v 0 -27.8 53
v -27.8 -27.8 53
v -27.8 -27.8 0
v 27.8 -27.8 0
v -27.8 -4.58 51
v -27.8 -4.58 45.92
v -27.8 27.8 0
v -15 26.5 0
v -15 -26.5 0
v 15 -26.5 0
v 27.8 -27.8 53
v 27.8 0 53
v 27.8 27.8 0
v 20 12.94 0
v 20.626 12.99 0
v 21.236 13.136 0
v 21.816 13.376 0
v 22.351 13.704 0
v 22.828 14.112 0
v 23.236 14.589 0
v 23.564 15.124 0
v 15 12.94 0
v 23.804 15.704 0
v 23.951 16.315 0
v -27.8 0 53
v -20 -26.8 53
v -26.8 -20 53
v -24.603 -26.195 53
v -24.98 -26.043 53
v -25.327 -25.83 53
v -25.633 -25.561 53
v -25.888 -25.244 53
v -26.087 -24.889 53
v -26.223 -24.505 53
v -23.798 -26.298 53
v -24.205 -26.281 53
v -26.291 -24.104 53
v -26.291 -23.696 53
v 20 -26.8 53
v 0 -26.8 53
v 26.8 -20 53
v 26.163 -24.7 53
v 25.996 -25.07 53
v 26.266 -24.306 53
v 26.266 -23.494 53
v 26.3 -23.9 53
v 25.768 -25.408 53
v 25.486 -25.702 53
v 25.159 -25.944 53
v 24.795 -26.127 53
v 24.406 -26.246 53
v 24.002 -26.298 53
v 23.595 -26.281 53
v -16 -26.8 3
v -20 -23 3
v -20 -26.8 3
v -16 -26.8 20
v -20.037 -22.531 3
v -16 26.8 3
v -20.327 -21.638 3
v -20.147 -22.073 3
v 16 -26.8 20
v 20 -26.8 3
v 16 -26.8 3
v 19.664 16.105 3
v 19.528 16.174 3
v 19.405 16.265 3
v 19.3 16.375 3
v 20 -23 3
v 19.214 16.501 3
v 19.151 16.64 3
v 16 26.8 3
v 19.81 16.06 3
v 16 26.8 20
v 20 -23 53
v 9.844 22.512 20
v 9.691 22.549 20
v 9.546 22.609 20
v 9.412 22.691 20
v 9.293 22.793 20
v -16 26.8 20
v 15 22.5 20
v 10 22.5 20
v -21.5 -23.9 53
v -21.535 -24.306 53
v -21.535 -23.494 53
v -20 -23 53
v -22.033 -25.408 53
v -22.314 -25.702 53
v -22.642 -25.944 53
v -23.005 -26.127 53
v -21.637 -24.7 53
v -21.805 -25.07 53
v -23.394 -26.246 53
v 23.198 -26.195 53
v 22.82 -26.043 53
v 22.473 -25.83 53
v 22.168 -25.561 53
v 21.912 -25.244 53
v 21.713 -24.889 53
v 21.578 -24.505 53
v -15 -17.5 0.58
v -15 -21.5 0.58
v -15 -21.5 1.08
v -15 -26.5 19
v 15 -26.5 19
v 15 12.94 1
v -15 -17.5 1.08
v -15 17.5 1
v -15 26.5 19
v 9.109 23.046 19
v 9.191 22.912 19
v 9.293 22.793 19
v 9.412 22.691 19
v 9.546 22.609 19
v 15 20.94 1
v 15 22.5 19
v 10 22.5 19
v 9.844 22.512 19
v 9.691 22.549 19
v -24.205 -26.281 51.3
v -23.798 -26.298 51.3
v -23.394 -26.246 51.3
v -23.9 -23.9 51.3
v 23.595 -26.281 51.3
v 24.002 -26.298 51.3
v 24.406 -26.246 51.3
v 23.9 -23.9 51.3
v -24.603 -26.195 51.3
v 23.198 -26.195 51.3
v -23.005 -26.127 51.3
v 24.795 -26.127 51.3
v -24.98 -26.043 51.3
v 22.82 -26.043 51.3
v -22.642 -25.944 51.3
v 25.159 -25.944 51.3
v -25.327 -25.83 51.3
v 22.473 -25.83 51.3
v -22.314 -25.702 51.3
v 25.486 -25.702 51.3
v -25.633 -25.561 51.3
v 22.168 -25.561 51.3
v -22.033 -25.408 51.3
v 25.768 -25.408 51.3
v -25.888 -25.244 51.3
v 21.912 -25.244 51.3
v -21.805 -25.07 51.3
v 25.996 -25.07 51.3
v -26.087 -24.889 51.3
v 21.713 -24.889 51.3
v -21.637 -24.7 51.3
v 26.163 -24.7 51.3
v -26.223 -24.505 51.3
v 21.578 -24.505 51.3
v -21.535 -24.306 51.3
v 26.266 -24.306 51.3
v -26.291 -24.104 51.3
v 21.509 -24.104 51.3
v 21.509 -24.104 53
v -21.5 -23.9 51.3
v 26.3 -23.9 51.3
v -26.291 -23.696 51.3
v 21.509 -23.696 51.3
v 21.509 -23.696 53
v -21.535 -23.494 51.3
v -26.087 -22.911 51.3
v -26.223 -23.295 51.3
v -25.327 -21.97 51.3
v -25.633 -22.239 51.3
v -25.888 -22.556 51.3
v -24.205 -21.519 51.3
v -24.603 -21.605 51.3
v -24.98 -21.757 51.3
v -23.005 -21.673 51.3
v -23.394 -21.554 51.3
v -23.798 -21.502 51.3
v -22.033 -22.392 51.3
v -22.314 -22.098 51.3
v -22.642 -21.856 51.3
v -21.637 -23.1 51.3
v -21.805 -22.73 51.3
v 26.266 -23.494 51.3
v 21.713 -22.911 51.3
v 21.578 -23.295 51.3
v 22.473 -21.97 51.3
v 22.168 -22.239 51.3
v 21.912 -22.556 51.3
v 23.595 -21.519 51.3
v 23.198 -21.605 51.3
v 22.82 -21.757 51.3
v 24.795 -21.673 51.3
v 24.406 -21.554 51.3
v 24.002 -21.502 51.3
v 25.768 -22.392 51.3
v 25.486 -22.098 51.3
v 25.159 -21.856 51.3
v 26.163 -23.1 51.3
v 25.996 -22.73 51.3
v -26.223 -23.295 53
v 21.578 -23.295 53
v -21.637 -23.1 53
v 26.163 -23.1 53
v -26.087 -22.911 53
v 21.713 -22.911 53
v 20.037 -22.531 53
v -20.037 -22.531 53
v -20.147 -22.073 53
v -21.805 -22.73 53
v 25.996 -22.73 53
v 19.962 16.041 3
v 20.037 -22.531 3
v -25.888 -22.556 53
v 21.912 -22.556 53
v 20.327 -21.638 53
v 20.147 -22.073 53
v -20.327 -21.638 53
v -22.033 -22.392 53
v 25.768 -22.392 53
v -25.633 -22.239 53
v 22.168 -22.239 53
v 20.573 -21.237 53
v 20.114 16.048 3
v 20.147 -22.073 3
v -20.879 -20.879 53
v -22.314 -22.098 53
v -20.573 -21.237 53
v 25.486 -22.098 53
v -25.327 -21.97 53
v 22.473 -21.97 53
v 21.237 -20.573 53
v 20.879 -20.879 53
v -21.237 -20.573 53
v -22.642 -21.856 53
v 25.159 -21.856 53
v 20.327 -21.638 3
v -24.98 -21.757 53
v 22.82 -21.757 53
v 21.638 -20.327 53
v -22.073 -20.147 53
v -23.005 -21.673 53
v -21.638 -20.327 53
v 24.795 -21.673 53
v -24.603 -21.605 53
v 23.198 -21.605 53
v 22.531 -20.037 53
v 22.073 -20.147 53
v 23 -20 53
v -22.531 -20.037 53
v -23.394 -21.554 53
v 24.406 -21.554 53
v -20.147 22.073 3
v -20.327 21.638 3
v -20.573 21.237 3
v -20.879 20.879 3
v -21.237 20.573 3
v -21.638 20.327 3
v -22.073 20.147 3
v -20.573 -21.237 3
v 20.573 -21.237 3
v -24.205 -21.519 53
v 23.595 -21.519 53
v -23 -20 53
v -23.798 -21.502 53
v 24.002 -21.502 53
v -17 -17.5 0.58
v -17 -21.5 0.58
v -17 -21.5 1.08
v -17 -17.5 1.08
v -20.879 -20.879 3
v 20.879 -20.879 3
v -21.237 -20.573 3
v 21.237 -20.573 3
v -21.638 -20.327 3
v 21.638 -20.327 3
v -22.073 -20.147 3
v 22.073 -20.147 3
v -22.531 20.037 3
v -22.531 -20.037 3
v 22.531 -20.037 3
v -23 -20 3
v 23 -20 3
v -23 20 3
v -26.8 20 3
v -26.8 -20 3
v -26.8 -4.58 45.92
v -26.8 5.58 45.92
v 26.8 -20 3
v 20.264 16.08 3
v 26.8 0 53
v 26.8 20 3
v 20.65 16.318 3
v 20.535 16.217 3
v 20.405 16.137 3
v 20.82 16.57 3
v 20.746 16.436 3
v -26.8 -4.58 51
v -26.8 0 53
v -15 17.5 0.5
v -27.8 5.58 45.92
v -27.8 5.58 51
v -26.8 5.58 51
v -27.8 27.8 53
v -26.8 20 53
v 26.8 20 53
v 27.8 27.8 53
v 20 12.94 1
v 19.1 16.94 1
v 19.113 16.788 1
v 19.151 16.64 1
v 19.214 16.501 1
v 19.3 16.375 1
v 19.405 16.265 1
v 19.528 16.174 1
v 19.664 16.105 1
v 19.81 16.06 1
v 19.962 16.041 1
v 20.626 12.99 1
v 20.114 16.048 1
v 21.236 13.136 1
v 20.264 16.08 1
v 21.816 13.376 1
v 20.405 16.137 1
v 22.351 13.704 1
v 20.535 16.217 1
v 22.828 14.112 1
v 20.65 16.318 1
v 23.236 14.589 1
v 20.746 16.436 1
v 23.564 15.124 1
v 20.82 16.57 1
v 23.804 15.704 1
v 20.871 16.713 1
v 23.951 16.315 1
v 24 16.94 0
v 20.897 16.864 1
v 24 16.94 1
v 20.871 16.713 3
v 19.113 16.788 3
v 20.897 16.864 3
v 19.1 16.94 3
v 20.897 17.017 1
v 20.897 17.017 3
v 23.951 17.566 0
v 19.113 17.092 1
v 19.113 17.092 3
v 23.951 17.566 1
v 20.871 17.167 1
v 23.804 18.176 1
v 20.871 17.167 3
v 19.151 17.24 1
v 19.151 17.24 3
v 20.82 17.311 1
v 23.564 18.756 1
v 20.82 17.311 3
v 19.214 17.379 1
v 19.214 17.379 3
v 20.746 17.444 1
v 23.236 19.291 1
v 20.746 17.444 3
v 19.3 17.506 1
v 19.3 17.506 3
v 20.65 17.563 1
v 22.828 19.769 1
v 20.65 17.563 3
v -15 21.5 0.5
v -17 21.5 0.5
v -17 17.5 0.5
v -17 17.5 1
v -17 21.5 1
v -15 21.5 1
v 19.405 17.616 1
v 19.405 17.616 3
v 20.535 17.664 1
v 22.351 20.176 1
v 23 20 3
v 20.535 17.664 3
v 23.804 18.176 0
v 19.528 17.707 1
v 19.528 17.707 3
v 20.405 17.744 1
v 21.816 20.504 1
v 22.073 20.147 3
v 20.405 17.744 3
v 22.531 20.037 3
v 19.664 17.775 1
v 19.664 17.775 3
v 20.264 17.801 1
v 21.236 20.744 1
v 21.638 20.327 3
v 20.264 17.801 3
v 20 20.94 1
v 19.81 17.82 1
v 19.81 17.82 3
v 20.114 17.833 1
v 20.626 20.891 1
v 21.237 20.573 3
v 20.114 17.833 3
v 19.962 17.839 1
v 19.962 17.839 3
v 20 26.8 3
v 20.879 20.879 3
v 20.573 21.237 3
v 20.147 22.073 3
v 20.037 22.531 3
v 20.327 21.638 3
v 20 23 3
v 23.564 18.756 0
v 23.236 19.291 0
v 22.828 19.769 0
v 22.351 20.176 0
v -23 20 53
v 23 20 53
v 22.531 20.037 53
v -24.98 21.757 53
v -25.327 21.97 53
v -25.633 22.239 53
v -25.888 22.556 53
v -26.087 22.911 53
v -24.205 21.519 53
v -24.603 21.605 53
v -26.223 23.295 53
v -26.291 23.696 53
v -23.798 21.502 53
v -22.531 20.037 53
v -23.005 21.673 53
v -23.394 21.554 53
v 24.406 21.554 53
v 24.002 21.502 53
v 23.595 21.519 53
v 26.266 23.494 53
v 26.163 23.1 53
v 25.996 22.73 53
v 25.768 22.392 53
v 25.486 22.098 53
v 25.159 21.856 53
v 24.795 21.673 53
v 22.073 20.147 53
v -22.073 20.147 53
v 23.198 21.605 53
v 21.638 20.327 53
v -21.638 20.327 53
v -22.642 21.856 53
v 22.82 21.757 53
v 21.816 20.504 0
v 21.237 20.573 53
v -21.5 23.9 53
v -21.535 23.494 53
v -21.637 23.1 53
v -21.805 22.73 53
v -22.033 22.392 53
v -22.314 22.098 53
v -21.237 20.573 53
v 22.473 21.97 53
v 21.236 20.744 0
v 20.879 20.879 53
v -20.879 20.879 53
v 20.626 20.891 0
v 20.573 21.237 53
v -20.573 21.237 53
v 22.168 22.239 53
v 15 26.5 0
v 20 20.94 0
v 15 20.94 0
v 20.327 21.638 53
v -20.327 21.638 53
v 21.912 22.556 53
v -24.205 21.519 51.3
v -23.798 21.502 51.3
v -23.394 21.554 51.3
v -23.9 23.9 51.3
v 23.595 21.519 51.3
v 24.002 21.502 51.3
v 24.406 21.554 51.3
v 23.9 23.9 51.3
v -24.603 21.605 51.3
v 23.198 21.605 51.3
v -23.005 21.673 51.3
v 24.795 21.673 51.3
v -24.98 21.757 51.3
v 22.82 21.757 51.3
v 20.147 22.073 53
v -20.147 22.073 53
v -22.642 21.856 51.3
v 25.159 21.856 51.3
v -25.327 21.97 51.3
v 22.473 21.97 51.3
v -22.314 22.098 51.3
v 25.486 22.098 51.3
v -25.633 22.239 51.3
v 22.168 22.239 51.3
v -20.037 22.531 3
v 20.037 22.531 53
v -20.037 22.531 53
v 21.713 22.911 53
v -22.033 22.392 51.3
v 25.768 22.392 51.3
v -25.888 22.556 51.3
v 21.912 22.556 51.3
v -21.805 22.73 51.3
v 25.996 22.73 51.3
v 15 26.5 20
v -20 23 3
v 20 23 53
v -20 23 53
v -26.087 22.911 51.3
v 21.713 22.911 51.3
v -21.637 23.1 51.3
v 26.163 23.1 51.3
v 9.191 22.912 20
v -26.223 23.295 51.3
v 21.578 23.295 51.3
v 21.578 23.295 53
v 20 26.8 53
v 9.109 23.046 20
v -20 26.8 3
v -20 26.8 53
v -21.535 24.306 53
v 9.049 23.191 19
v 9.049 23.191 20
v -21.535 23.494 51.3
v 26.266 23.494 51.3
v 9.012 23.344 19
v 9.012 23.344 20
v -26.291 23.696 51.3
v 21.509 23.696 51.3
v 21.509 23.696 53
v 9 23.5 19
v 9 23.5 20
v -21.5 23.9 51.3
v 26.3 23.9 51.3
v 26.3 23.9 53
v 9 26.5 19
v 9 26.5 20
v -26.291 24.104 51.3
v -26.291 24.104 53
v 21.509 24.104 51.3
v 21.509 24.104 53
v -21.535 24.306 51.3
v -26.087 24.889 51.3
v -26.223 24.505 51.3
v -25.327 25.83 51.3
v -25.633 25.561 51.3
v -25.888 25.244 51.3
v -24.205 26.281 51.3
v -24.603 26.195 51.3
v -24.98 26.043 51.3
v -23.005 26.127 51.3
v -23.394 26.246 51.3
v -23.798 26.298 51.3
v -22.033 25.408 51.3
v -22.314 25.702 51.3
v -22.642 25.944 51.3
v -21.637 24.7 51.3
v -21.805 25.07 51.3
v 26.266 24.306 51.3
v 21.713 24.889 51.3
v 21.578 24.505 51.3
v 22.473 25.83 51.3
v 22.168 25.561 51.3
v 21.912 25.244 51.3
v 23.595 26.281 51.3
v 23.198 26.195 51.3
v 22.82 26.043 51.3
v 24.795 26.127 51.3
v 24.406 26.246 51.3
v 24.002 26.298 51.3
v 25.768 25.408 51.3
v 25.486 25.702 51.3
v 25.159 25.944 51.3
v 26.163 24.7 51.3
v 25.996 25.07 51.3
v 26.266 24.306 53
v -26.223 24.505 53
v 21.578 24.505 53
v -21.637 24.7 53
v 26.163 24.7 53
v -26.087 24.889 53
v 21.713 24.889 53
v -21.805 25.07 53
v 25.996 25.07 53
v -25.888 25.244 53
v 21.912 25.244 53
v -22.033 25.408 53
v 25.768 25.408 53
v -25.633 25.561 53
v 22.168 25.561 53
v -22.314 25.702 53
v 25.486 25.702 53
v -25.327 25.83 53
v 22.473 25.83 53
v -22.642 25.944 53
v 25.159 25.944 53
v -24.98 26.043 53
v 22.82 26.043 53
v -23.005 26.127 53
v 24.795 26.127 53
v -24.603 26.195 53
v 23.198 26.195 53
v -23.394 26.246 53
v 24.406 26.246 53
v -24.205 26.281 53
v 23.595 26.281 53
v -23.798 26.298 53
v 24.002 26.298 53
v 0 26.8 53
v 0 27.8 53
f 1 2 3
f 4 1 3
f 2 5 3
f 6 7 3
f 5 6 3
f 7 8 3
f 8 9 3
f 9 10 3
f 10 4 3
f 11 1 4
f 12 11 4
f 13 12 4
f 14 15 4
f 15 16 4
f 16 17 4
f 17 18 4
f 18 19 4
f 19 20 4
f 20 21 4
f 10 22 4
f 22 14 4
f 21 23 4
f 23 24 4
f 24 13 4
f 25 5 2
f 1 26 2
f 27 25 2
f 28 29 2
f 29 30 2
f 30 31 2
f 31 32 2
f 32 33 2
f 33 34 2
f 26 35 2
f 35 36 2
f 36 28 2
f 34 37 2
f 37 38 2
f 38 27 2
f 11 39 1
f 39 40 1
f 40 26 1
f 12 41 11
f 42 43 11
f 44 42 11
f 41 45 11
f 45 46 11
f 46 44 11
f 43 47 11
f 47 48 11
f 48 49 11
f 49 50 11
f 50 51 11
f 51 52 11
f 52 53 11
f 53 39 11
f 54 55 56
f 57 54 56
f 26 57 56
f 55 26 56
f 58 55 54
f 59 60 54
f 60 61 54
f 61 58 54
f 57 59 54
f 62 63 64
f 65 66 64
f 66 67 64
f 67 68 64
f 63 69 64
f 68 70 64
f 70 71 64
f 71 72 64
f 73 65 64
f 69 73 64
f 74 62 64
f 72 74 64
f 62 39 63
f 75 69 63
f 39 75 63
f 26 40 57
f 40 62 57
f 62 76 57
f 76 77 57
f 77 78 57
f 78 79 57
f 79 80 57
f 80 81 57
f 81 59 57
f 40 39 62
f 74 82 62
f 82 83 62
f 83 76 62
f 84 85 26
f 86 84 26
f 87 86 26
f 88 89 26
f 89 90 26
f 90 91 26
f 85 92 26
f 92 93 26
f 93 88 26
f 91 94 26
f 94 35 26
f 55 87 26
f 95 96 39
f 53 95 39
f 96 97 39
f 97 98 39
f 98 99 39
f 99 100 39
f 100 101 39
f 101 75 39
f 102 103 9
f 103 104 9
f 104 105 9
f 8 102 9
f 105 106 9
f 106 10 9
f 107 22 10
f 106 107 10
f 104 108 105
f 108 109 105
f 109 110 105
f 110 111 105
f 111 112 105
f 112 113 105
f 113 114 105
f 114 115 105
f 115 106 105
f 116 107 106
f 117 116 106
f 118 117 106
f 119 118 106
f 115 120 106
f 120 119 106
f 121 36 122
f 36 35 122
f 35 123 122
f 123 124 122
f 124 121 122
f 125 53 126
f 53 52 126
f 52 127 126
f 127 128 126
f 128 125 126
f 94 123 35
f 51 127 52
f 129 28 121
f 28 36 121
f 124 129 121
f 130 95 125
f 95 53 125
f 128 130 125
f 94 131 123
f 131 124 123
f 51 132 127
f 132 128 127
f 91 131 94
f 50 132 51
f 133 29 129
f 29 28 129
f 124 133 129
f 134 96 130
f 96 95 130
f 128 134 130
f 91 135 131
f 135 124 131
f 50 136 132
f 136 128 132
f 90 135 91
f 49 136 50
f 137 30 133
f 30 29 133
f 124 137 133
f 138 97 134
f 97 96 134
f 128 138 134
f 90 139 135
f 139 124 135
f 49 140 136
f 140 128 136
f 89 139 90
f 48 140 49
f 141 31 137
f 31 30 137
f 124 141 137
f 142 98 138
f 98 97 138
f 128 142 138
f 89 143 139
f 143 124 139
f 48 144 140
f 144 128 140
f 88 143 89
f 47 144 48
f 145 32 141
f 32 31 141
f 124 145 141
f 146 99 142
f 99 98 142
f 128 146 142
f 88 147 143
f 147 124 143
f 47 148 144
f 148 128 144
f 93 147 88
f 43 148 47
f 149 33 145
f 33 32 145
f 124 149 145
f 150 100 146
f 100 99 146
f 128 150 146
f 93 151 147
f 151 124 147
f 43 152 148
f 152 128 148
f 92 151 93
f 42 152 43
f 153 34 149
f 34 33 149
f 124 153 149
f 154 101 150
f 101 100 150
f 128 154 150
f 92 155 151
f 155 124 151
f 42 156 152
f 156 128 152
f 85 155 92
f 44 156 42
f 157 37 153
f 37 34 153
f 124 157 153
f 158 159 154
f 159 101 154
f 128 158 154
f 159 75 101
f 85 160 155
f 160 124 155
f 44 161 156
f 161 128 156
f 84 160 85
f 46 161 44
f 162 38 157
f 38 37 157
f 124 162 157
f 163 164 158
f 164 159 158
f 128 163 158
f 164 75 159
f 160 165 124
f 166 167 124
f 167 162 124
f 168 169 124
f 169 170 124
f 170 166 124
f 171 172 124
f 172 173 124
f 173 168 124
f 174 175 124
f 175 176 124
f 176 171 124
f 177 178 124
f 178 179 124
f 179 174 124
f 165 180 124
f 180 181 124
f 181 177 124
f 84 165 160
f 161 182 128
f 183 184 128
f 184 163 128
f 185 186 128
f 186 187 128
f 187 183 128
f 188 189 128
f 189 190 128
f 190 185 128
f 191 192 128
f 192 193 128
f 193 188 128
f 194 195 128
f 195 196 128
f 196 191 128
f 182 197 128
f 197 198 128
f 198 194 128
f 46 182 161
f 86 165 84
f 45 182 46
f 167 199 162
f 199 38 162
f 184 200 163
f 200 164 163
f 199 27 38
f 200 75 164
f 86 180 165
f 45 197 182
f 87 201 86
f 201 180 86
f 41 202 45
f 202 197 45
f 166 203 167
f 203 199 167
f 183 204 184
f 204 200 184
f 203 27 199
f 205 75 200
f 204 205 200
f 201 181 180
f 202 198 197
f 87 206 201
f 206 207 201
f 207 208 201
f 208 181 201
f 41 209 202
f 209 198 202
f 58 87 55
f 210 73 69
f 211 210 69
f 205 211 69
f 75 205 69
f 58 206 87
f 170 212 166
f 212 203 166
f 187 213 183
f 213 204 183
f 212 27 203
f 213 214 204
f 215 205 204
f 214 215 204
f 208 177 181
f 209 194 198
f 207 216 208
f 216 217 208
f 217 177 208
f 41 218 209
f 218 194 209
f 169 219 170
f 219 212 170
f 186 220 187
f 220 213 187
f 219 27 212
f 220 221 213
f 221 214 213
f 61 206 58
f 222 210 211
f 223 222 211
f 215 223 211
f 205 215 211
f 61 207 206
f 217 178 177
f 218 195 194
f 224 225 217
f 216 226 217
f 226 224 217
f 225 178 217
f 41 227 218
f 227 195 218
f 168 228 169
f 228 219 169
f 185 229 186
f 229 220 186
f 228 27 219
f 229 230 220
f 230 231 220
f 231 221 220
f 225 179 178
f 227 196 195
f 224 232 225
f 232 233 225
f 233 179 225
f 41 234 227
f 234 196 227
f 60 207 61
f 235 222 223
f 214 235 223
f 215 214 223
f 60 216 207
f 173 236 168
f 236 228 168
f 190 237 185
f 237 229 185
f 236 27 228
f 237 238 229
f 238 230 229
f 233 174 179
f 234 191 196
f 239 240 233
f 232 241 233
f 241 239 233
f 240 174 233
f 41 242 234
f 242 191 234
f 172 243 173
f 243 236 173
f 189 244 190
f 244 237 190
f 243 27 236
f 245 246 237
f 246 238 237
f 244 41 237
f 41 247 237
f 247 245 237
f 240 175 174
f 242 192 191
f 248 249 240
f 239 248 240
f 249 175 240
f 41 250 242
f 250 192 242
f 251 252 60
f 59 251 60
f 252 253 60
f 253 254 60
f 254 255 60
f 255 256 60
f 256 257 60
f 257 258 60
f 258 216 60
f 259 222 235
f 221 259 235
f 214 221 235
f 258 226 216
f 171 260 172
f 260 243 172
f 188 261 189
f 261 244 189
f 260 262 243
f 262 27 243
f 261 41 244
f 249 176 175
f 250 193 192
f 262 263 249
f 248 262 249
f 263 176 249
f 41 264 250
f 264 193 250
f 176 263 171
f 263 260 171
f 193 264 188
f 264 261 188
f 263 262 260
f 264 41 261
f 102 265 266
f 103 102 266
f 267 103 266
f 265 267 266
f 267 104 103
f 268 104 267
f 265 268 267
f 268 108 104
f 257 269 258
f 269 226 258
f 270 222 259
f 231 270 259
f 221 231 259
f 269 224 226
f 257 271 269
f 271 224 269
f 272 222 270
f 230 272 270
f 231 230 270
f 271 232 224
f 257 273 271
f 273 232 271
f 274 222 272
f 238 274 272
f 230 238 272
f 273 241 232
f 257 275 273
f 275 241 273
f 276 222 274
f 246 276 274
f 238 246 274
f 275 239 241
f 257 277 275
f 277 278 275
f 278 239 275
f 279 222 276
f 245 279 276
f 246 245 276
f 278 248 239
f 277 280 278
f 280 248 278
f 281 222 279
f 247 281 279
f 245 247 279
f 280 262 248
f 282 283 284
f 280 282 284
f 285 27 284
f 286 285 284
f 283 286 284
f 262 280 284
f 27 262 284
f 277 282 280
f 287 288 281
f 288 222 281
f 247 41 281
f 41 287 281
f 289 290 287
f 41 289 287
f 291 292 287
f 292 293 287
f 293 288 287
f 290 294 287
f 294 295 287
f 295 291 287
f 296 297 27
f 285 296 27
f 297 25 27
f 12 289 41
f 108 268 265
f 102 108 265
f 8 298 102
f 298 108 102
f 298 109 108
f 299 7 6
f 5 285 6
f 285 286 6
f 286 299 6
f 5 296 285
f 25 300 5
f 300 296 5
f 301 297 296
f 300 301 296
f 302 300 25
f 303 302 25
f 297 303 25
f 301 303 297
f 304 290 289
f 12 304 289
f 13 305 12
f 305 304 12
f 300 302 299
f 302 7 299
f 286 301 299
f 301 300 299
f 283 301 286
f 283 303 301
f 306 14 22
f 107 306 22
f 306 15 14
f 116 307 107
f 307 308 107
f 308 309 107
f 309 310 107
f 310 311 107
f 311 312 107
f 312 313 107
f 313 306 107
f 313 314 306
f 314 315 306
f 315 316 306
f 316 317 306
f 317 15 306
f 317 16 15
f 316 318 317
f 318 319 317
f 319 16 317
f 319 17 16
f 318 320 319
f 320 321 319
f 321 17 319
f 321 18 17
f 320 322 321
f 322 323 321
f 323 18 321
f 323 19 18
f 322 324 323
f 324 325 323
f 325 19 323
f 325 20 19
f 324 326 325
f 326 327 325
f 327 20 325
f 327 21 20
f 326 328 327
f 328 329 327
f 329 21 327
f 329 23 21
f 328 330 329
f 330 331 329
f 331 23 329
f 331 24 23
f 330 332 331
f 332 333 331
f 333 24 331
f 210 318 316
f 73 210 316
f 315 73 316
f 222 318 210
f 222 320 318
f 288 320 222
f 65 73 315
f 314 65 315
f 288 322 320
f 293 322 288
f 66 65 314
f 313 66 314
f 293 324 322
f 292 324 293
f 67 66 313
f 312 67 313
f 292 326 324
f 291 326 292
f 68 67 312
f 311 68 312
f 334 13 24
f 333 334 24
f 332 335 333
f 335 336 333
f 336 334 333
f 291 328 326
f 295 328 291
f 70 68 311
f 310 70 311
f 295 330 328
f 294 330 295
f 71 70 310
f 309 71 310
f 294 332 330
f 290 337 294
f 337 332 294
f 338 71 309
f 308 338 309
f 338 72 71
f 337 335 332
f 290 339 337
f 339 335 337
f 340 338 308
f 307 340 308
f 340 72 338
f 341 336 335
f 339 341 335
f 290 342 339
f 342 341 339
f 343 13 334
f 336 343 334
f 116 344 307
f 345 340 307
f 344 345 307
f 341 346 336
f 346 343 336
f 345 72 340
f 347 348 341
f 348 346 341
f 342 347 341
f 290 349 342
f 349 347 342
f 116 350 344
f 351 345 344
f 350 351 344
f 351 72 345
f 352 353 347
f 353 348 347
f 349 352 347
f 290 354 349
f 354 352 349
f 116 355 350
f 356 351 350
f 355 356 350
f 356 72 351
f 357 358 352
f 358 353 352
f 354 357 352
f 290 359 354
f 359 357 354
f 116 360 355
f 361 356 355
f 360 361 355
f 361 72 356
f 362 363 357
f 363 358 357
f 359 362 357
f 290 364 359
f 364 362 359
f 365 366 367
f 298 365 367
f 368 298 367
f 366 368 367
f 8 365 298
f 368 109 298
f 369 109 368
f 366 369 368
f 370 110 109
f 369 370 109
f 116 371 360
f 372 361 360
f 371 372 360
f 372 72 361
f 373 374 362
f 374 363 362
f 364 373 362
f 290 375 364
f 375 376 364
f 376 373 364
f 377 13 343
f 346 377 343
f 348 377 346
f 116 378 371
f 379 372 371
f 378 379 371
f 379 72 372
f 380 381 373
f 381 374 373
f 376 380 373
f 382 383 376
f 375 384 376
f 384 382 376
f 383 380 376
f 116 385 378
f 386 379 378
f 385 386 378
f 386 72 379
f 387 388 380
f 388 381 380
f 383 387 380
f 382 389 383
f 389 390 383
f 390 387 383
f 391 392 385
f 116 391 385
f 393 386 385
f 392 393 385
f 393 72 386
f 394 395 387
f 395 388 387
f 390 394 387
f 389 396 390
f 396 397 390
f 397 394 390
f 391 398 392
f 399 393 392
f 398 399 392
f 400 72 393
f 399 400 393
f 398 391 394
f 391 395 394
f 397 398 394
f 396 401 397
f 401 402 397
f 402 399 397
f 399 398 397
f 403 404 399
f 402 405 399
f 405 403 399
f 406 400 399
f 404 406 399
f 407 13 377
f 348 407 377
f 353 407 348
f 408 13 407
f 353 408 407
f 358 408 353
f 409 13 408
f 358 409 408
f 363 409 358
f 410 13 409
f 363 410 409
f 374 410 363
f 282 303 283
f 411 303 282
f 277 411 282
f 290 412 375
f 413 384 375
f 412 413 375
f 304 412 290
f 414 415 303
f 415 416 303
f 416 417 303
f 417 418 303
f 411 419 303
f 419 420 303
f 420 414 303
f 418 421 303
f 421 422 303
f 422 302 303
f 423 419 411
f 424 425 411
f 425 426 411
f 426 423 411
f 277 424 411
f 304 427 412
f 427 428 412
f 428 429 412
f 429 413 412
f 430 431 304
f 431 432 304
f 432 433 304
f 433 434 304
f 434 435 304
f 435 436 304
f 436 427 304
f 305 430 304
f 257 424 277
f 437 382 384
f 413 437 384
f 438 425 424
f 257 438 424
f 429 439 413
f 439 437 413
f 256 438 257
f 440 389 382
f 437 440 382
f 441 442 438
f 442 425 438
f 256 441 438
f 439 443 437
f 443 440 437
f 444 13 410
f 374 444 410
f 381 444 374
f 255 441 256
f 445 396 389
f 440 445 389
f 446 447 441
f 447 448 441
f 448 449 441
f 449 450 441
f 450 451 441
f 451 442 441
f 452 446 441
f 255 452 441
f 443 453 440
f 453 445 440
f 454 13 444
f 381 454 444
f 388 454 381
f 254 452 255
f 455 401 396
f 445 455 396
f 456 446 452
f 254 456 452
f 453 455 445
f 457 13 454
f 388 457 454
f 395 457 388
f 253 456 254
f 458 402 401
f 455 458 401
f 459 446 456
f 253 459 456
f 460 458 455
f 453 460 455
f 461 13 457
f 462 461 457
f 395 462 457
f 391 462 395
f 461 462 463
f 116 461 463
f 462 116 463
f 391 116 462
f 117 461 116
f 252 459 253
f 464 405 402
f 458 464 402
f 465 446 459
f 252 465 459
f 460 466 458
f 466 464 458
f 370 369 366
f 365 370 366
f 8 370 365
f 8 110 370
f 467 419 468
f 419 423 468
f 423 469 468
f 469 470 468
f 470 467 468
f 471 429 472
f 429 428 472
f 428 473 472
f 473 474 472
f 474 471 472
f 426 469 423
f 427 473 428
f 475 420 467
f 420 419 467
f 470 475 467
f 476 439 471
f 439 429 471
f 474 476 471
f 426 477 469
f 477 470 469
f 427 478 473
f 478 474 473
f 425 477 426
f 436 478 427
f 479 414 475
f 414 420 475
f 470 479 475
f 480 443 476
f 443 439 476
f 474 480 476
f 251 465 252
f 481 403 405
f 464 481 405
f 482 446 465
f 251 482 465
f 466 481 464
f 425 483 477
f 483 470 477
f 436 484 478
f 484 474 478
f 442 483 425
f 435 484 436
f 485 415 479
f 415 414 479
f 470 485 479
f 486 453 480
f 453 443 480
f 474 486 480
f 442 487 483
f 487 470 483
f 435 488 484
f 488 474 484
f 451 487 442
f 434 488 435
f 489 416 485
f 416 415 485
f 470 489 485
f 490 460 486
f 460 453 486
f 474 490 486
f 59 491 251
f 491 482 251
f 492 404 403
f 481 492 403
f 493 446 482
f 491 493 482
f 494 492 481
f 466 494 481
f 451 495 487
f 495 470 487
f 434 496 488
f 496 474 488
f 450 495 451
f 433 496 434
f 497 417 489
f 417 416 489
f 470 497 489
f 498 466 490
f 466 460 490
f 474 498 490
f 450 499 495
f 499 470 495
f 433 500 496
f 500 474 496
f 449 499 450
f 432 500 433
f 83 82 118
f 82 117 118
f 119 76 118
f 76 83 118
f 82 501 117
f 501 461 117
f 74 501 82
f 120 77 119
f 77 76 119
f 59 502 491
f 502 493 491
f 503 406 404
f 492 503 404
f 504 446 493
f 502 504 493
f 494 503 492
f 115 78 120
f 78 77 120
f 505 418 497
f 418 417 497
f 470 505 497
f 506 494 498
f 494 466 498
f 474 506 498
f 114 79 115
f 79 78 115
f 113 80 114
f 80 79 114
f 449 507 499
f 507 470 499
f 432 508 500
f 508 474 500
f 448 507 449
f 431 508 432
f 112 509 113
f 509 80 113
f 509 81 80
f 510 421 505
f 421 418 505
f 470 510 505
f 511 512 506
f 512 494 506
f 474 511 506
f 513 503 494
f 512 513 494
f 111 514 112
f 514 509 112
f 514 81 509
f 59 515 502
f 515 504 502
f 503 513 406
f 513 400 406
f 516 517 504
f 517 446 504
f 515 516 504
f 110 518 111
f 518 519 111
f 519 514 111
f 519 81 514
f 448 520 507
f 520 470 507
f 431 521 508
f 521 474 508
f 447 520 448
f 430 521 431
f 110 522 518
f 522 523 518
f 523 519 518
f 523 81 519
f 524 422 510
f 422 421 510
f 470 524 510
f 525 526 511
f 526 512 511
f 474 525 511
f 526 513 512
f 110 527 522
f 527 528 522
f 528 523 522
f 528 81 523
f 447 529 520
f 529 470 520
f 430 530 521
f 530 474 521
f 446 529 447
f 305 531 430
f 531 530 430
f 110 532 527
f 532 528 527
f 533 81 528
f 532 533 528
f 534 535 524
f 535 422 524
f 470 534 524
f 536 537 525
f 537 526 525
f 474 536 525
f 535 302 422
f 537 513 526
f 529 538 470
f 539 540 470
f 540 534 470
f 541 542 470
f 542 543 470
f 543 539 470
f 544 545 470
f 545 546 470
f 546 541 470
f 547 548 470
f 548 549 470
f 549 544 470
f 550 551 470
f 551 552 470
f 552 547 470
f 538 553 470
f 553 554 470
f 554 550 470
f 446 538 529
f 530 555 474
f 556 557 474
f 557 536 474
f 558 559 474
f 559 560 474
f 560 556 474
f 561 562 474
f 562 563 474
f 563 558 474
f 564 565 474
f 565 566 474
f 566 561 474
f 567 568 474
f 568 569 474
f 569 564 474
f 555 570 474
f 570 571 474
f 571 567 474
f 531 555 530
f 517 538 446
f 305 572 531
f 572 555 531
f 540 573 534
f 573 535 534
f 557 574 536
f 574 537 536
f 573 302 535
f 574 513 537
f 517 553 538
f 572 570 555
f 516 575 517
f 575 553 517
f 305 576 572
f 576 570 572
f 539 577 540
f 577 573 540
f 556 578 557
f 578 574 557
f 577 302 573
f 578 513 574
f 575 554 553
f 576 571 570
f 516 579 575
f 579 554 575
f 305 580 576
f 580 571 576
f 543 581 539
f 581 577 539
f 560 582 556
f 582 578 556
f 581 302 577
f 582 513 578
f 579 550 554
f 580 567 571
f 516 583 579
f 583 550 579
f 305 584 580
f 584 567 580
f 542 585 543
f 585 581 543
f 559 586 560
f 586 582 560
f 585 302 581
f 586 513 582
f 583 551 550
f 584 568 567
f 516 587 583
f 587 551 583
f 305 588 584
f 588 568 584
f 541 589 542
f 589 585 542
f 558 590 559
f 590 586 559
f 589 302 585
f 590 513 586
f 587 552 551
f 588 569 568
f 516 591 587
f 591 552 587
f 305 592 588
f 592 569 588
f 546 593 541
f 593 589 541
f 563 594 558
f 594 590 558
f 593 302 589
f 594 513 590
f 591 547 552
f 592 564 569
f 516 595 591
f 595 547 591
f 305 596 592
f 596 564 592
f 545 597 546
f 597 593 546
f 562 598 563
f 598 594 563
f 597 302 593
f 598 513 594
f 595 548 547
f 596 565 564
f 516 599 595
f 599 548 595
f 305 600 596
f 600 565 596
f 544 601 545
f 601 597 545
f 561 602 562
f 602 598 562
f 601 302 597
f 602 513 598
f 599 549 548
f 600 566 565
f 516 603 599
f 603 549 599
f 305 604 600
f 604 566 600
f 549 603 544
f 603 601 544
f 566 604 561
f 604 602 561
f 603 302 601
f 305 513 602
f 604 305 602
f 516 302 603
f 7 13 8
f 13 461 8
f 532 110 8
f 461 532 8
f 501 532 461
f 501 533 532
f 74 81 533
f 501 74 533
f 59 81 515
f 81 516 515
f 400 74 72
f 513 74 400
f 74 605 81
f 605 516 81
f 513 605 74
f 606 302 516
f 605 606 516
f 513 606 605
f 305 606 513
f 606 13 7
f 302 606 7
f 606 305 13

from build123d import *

# Parameters (mm, degrees)
SKICA1_W                  = 55.6
SKICA1_H                  = 55.6
P_IDAT_VYSUNUT_M2_DEPTH   = 3
SKICA14_W                 = 53.6
SKICA14_H                 = 1
P_IDAT_VYSUNUT_M9_DEPTH   = 50
SKICA19_W                 = 7.8
SKICA19_H                 = 7.8
P_IDAT_VYSUNUT_M10_DEPTH  = 53
SKICA20_R                 = 2.4
ODEBRAT_VYSUNUT_M9_DEPTH  = 1.7
ZAOBLIT1_R                = 3
SKICA25_W                 = 32
SKICA25_H                 = 55.6
P_IDAT_VYSUNUT_M12_DEPTH  = 20
SKICA26_W                 = 30
SKICA26_H                 = 53
ODEBRAT_VYSUNUT_M11_DEPTH = 19
SKICA27_W                 = 5.08
SKICA27_H                 = 10.16
ODEBRAT_VYSUNUT_M12_DEPTH = 1
SKICA28_W                 = 9
SKICA28_H                 = 8
ODEBRAT_VYSUNUT_M13_DEPTH = 1
ZAOBLIT3_R                = 4
SKICA29_W                 = 0.5
SKICA29_H                 = 4
ODEBRAT_VYSUNUT_M14_DEPTH = 2
SKICA30_R                 = 0.9
ODEBRAT_VYSUNUT_M15_DEPTH = 2
SKICA31_W                 = 6
SKICA31_H                 = 4
ODEBRAT_VYSUNUT_M16_DEPTH = 2
ZAOBLIT4_R                = 1


with BuildPart() as part:
    # Skica1 → Přidat vysunutím2 (new body)
    with BuildSketch(Plane.XY):
        Rectangle(SKICA1_W, SKICA1_H)
    extrude(amount=P_IDAT_VYSUNUT_M2_DEPTH)

    # Skica14 → Přidat vysunutím9 (add)
    with BuildSketch(Plane.XY.offset(3)):
        Polygon((27.8, 27.8), (-27.8, 27.8), (-27.8, -27.8), (-26.8, -27.8), (-26.8, -26.8), (-26.8, 26.8), (26.8, 26.8), (26.8, -26.8), (26.8, -27.8), (27.8, -27.8), align=None)
        with Locations((0, -27.3)):
            Rectangle(SKICA14_W, SKICA14_H)
    extrude(amount=P_IDAT_VYSUNUT_M9_DEPTH)

    # Skica19 → Přidat vysunutím10 (add)
    with BuildSketch(Plane(origin=(0, 0, 0), x_dir=(-1, 0, 0), z_dir=(0, 0, -1))):
        with Locations((-23.9, 23.9)):
            Rectangle(SKICA19_W, SKICA19_H)
        with Locations((23.9, 23.9)):
            Rectangle(SKICA19_W, SKICA19_H)
        with Locations((-23.9, -23.9)):
            Rectangle(SKICA19_W, SKICA19_H)
        with Locations((23.9, -23.9)):
            Rectangle(SKICA19_W, SKICA19_H)
    extrude(amount=-P_IDAT_VYSUNUT_M10_DEPTH)

    # Skica20 → Odebrat vysunutím9 (cut)
    with BuildSketch(Plane.XY.offset(53)):
        with Locations((-23.9, -23.9)):
            Circle(SKICA20_R)
        with Locations((-23.9, 23.9)):
            Circle(SKICA20_R)
        with Locations((23.900280565, 23.9)):
            Circle(SKICA20_R)
        with Locations((23.900280565, -23.9)):
            Circle(SKICA20_R)
    extrude(amount=-ODEBRAT_VYSUNUT_M9_DEPTH, mode=Mode.SUBTRACT)

    # Zaoblit1
    zaoblit1_edges = [part.edges().sort_by_distance(p)[0] for p in [
        (-20, -20, 28),
        (20, 20, 28),
        (-20, 20, 28),
        (20, -20, 28),
    ]]
    fillet(zaoblit1_edges, radius=ZAOBLIT1_R)

    # Skica25 → Přidat vysunutím12 (add)
    with BuildSketch(Plane(origin=(0, 0, 0), x_dir=(-1, 0, 0), z_dir=(0, 0, -1))):
        Rectangle(SKICA25_W, SKICA25_H)
    extrude(amount=-P_IDAT_VYSUNUT_M12_DEPTH)

    # Skica26 → Odebrat vysunutím11 (cut)
    with BuildSketch(Plane(origin=(0, 0, 0), x_dir=(-1, 0, 0), z_dir=(0, 0, -1))):
        Rectangle(SKICA26_W, SKICA26_H)
    extrude(amount=-ODEBRAT_VYSUNUT_M11_DEPTH, mode=Mode.SUBTRACT)

    # Skica27 → Odebrat vysunutím12 (cut)
    with BuildSketch(Plane.ZY.offset(27.8)):
        with Locations((48.46, 0.5)):
            Rectangle(SKICA27_W, SKICA27_H)
    extrude(amount=-ODEBRAT_VYSUNUT_M12_DEPTH, mode=Mode.SUBTRACT)

    # Skica28 → Odebrat vysunutím13 (cut)
    with BuildSketch(Plane(origin=(0, 0, 0), x_dir=(-1, 0, 0), z_dir=(0, 0, -1))):
        with Locations((-19.5, 16.940262317)):
            Rectangle(SKICA28_W, SKICA28_H)
    extrude(amount=-ODEBRAT_VYSUNUT_M13_DEPTH, mode=Mode.SUBTRACT)

    # Zaoblit3
    zaoblit3_edges = [part.edges().sort_by_distance(p)[0] for p in [
        (24, 12.940262317, 0.5),
        (24, 20.940262317, 0.5),
    ]]
    fillet(zaoblit3_edges, radius=ZAOBLIT3_R - 0.0001)  # a hair under: the kernel refuses the full size

    # Skica29 → Odebrat vysunutím14 (cut)
    with BuildSketch(Plane(origin=(-15, 0, 0), x_dir=(0, 0, -1), z_dir=(1, 0, 0))):
        with Locations((-0.75, 19.5)):
            Rectangle(SKICA29_W, SKICA29_H)
        with Locations((-0.83, -19.5)):
            Rectangle(SKICA29_W, SKICA29_H)
    extrude(amount=-ODEBRAT_VYSUNUT_M14_DEPTH, mode=Mode.SUBTRACT)

    # Skica30 → Odebrat vysunutím15 (cut)
    with BuildSketch(Plane(origin=(0, 0, 1), x_dir=(-1, 0, 0), z_dir=(0, 0, -1))):
        with Locations((-20, 16.940262317)):
            Circle(SKICA30_R)
    extrude(amount=-ODEBRAT_VYSUNUT_M15_DEPTH, mode=Mode.SUBTRACT)

    # Skica31 → Odebrat vysunutím16 (cut)
    with BuildSketch(Plane(origin=(0, 0, 19), x_dir=(-1, 0, 0), z_dir=(0, 0, -1))):
        with Locations((-12, 24.5)):
            Rectangle(SKICA31_W, SKICA31_H)
    extrude(amount=-ODEBRAT_VYSUNUT_M16_DEPTH, mode=Mode.SUBTRACT)

    # Zaoblit4
    zaoblit4_edges = [part.edges().sort_by_distance(p)[0] for p in [
        (9, 22.5, 19.5),
    ]]
    fillet(zaoblit4_edges, radius=ZAOBLIT4_R)


solid = part.part
